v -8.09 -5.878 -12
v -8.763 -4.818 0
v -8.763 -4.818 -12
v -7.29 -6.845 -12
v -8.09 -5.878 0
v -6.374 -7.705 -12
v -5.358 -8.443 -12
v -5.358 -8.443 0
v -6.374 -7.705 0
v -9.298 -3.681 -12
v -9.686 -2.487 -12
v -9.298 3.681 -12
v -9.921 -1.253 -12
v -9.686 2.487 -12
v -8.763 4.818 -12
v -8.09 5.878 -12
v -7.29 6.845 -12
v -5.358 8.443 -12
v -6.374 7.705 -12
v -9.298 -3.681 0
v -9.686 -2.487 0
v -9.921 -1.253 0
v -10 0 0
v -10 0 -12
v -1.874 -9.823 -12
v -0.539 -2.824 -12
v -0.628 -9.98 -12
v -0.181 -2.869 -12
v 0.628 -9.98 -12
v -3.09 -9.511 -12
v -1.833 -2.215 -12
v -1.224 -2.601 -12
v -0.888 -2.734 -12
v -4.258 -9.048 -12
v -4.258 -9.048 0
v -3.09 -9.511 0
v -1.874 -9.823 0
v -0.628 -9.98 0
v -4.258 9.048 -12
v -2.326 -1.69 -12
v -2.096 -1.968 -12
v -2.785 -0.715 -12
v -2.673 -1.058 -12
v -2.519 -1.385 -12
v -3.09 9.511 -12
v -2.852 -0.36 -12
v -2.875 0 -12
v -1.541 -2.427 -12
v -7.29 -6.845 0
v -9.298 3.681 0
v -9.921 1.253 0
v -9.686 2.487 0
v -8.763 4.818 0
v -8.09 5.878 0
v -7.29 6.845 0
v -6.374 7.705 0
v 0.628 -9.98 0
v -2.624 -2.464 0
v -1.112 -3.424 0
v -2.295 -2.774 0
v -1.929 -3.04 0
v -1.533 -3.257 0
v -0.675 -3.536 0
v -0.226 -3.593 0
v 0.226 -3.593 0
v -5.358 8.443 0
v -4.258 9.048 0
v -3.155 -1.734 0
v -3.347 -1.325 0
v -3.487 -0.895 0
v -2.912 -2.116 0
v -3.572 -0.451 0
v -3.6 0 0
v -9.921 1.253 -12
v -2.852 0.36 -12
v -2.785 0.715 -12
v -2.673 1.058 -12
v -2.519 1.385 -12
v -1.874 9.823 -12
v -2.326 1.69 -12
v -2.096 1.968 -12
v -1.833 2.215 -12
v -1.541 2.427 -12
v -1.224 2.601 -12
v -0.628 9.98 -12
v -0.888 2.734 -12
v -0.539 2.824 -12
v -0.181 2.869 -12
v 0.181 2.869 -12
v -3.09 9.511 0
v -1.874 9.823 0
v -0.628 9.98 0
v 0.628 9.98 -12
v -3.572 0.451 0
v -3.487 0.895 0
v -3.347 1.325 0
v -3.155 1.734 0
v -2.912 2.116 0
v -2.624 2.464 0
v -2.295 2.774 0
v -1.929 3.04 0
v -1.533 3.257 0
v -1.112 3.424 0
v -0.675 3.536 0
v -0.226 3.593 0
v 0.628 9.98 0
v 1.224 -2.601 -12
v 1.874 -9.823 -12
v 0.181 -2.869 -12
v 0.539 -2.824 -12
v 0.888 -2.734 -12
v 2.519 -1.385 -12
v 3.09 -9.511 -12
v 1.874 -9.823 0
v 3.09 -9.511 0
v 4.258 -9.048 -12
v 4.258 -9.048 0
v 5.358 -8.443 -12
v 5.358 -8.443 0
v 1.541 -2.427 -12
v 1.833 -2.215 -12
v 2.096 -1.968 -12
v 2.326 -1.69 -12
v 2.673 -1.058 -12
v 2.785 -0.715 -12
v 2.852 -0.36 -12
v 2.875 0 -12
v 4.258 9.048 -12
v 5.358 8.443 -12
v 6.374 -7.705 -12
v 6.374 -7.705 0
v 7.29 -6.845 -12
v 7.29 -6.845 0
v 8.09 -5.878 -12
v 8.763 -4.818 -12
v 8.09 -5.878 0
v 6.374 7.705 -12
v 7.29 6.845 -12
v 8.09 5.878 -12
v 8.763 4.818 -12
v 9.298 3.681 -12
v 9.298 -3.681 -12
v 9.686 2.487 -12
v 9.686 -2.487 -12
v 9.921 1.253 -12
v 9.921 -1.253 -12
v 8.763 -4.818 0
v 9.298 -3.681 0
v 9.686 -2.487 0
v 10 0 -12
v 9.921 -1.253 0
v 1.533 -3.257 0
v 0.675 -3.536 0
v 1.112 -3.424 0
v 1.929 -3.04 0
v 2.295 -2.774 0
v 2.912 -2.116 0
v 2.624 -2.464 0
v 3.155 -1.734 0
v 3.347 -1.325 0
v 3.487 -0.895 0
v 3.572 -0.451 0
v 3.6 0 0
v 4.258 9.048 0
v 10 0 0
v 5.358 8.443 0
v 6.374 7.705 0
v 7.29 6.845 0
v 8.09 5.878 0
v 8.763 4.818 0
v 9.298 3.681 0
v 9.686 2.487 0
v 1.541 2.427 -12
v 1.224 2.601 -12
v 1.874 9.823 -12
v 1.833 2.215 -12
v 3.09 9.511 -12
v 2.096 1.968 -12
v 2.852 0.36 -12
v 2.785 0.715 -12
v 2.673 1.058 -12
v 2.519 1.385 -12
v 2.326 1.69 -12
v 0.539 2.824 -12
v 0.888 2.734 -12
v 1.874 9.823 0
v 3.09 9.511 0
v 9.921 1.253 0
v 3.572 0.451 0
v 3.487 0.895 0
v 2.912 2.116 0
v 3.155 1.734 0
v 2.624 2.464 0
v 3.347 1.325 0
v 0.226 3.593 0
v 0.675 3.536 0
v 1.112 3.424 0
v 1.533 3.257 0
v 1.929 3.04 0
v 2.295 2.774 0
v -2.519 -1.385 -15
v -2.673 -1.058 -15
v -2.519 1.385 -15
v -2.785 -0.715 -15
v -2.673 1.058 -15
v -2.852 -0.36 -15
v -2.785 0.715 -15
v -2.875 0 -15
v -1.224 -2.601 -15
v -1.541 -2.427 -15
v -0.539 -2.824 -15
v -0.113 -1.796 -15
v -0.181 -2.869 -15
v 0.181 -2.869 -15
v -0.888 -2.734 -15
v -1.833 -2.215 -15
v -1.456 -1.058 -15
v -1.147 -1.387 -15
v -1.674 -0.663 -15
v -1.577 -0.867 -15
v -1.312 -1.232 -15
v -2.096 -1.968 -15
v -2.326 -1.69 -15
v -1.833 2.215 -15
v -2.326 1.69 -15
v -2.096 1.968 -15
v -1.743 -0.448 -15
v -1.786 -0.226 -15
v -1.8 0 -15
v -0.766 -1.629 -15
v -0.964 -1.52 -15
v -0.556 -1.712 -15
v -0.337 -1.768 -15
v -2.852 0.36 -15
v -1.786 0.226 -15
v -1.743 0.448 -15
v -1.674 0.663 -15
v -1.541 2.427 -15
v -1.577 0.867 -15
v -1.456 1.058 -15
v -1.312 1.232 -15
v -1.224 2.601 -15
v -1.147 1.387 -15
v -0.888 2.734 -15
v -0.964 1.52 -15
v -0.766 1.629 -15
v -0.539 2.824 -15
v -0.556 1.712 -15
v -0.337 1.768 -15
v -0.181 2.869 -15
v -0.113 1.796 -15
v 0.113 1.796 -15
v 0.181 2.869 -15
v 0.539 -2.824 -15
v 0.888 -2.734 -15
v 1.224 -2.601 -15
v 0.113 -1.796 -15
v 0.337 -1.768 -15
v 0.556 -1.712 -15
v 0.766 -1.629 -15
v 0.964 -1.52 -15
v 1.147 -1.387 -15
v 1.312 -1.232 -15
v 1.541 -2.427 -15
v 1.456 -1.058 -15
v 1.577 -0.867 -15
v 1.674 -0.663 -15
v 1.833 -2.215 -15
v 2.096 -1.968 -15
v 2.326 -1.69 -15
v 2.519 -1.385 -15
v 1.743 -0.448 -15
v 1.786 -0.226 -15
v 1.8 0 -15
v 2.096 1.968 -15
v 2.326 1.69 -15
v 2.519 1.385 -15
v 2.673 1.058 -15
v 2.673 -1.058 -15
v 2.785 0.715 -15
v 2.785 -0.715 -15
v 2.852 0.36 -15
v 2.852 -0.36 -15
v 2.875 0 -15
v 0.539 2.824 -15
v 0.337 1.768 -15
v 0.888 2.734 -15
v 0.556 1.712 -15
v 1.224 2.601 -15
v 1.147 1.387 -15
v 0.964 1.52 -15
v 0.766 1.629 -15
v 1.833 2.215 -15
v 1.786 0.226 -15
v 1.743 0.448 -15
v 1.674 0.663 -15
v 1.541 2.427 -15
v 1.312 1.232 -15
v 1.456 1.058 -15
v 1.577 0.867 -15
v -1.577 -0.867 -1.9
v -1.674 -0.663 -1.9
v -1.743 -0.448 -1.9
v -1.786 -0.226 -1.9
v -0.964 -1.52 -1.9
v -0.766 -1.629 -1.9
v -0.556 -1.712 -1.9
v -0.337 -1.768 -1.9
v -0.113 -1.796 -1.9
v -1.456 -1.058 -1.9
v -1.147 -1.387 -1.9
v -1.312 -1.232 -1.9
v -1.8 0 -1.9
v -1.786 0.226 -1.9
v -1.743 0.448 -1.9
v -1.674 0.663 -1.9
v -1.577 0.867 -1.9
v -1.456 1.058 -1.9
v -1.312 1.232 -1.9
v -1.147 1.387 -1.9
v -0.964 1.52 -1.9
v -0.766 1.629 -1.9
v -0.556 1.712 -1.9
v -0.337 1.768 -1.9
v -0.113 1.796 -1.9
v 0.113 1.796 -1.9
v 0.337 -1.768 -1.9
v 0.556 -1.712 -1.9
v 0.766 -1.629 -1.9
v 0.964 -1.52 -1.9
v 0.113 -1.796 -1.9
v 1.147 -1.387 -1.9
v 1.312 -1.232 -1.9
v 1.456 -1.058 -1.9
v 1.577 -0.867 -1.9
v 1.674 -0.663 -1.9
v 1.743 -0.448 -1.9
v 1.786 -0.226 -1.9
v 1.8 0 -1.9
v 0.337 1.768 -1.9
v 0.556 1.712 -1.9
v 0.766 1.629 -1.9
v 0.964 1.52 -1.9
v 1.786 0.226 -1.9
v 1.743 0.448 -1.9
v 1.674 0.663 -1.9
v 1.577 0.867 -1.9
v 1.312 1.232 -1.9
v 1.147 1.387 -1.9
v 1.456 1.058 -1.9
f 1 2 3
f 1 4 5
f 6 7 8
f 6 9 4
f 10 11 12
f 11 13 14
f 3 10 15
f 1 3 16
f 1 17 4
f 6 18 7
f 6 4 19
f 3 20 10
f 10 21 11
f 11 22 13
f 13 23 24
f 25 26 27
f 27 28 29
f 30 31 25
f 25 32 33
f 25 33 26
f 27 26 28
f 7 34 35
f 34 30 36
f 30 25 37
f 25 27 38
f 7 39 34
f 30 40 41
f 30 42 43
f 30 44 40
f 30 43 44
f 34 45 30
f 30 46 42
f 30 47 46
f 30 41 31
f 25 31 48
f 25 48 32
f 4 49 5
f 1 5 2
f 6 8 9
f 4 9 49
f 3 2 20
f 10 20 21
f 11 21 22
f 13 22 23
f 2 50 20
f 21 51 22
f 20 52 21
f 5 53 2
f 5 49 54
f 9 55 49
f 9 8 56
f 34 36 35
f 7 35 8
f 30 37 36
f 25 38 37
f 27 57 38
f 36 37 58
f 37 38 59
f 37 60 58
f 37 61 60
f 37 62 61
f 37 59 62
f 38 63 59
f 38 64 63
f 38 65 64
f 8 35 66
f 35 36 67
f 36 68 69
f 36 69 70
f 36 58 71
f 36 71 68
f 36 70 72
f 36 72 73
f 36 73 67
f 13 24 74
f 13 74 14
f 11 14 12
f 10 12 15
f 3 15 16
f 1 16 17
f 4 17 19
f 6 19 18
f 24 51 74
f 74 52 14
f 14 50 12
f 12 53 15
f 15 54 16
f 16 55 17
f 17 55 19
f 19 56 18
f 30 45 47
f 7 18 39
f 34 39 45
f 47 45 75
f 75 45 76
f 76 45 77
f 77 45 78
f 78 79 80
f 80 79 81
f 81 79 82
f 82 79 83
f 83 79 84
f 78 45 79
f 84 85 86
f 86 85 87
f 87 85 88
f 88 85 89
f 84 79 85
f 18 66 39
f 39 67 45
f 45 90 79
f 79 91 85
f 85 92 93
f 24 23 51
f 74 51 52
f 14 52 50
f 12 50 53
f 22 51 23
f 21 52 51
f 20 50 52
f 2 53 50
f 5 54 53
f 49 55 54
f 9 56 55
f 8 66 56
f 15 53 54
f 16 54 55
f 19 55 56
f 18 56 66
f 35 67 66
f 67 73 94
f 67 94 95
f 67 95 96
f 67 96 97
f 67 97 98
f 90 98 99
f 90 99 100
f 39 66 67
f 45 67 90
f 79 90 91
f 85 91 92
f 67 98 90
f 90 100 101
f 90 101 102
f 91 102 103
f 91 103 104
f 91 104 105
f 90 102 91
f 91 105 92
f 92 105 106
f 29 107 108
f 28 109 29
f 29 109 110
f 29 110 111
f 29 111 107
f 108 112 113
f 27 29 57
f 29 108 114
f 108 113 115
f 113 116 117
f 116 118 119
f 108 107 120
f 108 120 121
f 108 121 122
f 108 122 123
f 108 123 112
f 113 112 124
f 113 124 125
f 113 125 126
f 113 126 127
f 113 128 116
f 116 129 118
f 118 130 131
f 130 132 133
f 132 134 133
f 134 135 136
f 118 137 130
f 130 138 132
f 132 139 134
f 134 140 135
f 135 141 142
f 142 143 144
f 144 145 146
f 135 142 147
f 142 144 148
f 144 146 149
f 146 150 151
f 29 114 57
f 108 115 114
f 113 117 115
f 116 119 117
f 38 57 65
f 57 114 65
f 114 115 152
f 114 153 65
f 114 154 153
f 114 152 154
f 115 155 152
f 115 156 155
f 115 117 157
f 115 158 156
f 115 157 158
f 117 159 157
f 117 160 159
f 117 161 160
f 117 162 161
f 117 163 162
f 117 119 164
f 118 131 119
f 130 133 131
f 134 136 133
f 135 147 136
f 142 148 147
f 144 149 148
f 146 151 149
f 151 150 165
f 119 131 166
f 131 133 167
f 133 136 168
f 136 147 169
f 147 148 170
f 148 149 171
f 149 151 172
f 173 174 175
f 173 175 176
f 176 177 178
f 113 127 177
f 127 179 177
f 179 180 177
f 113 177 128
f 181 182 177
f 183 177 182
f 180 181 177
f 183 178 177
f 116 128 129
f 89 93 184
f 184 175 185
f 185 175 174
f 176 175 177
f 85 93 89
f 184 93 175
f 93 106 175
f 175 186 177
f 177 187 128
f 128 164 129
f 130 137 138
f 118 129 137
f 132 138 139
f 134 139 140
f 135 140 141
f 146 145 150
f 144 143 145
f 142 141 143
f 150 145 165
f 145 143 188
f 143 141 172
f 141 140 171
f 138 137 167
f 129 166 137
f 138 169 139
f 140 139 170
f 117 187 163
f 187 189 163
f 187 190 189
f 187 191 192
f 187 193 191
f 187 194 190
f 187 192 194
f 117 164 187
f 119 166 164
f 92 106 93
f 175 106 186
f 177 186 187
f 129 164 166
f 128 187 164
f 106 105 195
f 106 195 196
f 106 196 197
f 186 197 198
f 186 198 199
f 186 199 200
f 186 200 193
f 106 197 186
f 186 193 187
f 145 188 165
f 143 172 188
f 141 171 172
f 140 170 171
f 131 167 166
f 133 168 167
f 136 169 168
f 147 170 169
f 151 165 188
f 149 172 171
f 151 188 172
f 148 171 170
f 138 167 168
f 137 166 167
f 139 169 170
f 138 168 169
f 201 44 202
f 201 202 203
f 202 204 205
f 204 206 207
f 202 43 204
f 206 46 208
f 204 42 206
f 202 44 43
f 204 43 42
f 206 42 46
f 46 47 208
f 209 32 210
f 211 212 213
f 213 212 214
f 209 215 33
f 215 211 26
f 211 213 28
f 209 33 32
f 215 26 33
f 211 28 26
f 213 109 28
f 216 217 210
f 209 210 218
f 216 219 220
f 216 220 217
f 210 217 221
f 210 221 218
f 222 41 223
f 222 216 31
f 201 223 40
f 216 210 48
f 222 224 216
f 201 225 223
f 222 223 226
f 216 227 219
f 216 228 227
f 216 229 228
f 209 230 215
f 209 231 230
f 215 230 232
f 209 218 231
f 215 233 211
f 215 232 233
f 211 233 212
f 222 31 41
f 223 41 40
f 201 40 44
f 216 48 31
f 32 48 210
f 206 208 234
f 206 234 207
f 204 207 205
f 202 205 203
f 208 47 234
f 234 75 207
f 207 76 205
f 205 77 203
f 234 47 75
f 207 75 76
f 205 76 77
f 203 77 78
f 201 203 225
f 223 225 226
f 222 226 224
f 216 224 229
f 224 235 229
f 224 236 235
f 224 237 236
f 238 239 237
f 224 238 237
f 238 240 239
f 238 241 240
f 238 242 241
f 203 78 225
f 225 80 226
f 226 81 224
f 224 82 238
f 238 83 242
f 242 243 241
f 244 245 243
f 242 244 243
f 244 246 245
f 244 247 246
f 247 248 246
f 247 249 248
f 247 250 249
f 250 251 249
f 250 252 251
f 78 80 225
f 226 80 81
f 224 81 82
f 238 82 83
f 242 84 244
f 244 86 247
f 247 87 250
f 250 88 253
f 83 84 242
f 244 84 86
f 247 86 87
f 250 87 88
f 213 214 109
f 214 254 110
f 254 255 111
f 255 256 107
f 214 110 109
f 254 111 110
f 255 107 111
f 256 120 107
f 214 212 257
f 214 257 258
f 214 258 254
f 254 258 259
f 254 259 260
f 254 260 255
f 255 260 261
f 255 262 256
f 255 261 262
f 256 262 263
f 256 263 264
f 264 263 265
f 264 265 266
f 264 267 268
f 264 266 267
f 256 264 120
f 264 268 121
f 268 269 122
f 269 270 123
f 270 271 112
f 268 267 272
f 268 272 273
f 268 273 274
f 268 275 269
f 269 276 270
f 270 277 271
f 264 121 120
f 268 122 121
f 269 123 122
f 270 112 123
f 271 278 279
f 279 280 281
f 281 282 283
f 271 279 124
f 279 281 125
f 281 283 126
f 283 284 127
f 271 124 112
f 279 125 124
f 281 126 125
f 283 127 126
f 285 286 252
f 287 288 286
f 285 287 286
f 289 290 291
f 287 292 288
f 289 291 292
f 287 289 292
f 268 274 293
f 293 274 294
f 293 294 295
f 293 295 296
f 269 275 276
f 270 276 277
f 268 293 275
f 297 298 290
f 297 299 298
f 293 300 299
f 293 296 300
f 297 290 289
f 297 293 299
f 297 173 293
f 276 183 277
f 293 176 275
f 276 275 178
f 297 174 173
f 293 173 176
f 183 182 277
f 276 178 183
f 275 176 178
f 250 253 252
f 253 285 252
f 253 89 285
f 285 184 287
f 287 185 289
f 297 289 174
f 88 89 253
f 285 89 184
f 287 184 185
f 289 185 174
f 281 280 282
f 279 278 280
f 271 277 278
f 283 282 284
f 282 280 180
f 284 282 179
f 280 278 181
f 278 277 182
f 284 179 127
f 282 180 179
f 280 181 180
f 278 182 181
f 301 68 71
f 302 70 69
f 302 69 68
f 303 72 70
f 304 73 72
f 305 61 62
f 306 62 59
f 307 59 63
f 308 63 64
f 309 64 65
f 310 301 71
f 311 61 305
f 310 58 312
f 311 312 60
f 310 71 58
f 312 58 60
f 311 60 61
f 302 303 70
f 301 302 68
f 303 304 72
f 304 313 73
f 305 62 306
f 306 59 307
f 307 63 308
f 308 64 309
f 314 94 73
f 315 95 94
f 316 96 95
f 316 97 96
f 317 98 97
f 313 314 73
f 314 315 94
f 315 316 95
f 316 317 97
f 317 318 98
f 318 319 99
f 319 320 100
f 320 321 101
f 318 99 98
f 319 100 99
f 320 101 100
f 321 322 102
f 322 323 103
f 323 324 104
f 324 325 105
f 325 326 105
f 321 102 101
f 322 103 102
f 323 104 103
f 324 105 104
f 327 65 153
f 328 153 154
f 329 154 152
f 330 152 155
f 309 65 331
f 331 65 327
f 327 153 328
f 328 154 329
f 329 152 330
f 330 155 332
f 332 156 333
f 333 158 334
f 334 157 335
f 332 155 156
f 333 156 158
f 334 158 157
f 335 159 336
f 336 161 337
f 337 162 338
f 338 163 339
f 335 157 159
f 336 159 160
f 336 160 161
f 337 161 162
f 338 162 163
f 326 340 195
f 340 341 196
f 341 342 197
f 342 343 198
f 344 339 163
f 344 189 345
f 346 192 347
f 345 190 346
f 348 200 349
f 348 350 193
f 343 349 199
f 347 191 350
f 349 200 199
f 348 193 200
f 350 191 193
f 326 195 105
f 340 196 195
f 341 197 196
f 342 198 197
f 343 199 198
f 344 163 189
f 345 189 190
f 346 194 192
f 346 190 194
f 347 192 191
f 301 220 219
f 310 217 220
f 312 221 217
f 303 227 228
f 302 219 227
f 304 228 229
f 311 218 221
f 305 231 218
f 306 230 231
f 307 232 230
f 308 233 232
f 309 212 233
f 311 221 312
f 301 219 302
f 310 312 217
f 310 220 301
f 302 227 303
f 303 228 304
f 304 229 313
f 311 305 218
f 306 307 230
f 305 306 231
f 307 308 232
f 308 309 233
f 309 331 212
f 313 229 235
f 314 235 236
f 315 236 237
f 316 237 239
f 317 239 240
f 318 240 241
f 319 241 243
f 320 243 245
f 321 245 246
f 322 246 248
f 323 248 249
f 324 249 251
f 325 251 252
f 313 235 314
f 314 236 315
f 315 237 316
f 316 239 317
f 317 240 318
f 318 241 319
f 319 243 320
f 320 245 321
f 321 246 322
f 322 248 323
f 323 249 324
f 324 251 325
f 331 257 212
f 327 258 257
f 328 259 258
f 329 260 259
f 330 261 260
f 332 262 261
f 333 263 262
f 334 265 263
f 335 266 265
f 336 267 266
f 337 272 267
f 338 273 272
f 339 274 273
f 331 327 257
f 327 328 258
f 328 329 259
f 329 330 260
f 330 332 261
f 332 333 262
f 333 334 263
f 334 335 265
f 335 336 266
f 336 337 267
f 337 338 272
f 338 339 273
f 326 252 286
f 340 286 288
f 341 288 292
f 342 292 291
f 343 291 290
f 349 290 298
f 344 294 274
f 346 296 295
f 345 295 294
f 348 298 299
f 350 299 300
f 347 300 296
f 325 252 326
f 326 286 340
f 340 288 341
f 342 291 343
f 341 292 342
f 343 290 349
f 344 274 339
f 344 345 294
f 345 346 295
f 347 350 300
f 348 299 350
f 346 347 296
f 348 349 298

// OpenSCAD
$fn = 50;

difference() {
	union() {
		translate(v = [0, 0, -12.0]) {
			cylinder(h = 12, r = 10.0);
		}
		#translate(v = [0, 0, -15.0]) {
			cylinder(h = 15, r = 2.875);
		}
	}
	union() {
		translate(v = [0, 0, 0]) {
			rotate(a = [0, 0, 0]) {
				difference() {
					union() {
						translate(v = [0, 0, -15.0]) {
							cylinder(h = 15, r = 1.5);
						}
						translate(v = [0, 0, -1.9]) {
							cylinder(h = 1.9, r1 = 1.8, r2 = 3.6);
						}
						translate(v = [0, 0, -15.0]) {
							cylinder(h = 15, r = 1.8);
						}
						translate(v = [0, 0, -15.0]) {
							cylinder(h = 15, r = 1.5);
						}
					}
					union();
				}
			}
		}
	}
}
